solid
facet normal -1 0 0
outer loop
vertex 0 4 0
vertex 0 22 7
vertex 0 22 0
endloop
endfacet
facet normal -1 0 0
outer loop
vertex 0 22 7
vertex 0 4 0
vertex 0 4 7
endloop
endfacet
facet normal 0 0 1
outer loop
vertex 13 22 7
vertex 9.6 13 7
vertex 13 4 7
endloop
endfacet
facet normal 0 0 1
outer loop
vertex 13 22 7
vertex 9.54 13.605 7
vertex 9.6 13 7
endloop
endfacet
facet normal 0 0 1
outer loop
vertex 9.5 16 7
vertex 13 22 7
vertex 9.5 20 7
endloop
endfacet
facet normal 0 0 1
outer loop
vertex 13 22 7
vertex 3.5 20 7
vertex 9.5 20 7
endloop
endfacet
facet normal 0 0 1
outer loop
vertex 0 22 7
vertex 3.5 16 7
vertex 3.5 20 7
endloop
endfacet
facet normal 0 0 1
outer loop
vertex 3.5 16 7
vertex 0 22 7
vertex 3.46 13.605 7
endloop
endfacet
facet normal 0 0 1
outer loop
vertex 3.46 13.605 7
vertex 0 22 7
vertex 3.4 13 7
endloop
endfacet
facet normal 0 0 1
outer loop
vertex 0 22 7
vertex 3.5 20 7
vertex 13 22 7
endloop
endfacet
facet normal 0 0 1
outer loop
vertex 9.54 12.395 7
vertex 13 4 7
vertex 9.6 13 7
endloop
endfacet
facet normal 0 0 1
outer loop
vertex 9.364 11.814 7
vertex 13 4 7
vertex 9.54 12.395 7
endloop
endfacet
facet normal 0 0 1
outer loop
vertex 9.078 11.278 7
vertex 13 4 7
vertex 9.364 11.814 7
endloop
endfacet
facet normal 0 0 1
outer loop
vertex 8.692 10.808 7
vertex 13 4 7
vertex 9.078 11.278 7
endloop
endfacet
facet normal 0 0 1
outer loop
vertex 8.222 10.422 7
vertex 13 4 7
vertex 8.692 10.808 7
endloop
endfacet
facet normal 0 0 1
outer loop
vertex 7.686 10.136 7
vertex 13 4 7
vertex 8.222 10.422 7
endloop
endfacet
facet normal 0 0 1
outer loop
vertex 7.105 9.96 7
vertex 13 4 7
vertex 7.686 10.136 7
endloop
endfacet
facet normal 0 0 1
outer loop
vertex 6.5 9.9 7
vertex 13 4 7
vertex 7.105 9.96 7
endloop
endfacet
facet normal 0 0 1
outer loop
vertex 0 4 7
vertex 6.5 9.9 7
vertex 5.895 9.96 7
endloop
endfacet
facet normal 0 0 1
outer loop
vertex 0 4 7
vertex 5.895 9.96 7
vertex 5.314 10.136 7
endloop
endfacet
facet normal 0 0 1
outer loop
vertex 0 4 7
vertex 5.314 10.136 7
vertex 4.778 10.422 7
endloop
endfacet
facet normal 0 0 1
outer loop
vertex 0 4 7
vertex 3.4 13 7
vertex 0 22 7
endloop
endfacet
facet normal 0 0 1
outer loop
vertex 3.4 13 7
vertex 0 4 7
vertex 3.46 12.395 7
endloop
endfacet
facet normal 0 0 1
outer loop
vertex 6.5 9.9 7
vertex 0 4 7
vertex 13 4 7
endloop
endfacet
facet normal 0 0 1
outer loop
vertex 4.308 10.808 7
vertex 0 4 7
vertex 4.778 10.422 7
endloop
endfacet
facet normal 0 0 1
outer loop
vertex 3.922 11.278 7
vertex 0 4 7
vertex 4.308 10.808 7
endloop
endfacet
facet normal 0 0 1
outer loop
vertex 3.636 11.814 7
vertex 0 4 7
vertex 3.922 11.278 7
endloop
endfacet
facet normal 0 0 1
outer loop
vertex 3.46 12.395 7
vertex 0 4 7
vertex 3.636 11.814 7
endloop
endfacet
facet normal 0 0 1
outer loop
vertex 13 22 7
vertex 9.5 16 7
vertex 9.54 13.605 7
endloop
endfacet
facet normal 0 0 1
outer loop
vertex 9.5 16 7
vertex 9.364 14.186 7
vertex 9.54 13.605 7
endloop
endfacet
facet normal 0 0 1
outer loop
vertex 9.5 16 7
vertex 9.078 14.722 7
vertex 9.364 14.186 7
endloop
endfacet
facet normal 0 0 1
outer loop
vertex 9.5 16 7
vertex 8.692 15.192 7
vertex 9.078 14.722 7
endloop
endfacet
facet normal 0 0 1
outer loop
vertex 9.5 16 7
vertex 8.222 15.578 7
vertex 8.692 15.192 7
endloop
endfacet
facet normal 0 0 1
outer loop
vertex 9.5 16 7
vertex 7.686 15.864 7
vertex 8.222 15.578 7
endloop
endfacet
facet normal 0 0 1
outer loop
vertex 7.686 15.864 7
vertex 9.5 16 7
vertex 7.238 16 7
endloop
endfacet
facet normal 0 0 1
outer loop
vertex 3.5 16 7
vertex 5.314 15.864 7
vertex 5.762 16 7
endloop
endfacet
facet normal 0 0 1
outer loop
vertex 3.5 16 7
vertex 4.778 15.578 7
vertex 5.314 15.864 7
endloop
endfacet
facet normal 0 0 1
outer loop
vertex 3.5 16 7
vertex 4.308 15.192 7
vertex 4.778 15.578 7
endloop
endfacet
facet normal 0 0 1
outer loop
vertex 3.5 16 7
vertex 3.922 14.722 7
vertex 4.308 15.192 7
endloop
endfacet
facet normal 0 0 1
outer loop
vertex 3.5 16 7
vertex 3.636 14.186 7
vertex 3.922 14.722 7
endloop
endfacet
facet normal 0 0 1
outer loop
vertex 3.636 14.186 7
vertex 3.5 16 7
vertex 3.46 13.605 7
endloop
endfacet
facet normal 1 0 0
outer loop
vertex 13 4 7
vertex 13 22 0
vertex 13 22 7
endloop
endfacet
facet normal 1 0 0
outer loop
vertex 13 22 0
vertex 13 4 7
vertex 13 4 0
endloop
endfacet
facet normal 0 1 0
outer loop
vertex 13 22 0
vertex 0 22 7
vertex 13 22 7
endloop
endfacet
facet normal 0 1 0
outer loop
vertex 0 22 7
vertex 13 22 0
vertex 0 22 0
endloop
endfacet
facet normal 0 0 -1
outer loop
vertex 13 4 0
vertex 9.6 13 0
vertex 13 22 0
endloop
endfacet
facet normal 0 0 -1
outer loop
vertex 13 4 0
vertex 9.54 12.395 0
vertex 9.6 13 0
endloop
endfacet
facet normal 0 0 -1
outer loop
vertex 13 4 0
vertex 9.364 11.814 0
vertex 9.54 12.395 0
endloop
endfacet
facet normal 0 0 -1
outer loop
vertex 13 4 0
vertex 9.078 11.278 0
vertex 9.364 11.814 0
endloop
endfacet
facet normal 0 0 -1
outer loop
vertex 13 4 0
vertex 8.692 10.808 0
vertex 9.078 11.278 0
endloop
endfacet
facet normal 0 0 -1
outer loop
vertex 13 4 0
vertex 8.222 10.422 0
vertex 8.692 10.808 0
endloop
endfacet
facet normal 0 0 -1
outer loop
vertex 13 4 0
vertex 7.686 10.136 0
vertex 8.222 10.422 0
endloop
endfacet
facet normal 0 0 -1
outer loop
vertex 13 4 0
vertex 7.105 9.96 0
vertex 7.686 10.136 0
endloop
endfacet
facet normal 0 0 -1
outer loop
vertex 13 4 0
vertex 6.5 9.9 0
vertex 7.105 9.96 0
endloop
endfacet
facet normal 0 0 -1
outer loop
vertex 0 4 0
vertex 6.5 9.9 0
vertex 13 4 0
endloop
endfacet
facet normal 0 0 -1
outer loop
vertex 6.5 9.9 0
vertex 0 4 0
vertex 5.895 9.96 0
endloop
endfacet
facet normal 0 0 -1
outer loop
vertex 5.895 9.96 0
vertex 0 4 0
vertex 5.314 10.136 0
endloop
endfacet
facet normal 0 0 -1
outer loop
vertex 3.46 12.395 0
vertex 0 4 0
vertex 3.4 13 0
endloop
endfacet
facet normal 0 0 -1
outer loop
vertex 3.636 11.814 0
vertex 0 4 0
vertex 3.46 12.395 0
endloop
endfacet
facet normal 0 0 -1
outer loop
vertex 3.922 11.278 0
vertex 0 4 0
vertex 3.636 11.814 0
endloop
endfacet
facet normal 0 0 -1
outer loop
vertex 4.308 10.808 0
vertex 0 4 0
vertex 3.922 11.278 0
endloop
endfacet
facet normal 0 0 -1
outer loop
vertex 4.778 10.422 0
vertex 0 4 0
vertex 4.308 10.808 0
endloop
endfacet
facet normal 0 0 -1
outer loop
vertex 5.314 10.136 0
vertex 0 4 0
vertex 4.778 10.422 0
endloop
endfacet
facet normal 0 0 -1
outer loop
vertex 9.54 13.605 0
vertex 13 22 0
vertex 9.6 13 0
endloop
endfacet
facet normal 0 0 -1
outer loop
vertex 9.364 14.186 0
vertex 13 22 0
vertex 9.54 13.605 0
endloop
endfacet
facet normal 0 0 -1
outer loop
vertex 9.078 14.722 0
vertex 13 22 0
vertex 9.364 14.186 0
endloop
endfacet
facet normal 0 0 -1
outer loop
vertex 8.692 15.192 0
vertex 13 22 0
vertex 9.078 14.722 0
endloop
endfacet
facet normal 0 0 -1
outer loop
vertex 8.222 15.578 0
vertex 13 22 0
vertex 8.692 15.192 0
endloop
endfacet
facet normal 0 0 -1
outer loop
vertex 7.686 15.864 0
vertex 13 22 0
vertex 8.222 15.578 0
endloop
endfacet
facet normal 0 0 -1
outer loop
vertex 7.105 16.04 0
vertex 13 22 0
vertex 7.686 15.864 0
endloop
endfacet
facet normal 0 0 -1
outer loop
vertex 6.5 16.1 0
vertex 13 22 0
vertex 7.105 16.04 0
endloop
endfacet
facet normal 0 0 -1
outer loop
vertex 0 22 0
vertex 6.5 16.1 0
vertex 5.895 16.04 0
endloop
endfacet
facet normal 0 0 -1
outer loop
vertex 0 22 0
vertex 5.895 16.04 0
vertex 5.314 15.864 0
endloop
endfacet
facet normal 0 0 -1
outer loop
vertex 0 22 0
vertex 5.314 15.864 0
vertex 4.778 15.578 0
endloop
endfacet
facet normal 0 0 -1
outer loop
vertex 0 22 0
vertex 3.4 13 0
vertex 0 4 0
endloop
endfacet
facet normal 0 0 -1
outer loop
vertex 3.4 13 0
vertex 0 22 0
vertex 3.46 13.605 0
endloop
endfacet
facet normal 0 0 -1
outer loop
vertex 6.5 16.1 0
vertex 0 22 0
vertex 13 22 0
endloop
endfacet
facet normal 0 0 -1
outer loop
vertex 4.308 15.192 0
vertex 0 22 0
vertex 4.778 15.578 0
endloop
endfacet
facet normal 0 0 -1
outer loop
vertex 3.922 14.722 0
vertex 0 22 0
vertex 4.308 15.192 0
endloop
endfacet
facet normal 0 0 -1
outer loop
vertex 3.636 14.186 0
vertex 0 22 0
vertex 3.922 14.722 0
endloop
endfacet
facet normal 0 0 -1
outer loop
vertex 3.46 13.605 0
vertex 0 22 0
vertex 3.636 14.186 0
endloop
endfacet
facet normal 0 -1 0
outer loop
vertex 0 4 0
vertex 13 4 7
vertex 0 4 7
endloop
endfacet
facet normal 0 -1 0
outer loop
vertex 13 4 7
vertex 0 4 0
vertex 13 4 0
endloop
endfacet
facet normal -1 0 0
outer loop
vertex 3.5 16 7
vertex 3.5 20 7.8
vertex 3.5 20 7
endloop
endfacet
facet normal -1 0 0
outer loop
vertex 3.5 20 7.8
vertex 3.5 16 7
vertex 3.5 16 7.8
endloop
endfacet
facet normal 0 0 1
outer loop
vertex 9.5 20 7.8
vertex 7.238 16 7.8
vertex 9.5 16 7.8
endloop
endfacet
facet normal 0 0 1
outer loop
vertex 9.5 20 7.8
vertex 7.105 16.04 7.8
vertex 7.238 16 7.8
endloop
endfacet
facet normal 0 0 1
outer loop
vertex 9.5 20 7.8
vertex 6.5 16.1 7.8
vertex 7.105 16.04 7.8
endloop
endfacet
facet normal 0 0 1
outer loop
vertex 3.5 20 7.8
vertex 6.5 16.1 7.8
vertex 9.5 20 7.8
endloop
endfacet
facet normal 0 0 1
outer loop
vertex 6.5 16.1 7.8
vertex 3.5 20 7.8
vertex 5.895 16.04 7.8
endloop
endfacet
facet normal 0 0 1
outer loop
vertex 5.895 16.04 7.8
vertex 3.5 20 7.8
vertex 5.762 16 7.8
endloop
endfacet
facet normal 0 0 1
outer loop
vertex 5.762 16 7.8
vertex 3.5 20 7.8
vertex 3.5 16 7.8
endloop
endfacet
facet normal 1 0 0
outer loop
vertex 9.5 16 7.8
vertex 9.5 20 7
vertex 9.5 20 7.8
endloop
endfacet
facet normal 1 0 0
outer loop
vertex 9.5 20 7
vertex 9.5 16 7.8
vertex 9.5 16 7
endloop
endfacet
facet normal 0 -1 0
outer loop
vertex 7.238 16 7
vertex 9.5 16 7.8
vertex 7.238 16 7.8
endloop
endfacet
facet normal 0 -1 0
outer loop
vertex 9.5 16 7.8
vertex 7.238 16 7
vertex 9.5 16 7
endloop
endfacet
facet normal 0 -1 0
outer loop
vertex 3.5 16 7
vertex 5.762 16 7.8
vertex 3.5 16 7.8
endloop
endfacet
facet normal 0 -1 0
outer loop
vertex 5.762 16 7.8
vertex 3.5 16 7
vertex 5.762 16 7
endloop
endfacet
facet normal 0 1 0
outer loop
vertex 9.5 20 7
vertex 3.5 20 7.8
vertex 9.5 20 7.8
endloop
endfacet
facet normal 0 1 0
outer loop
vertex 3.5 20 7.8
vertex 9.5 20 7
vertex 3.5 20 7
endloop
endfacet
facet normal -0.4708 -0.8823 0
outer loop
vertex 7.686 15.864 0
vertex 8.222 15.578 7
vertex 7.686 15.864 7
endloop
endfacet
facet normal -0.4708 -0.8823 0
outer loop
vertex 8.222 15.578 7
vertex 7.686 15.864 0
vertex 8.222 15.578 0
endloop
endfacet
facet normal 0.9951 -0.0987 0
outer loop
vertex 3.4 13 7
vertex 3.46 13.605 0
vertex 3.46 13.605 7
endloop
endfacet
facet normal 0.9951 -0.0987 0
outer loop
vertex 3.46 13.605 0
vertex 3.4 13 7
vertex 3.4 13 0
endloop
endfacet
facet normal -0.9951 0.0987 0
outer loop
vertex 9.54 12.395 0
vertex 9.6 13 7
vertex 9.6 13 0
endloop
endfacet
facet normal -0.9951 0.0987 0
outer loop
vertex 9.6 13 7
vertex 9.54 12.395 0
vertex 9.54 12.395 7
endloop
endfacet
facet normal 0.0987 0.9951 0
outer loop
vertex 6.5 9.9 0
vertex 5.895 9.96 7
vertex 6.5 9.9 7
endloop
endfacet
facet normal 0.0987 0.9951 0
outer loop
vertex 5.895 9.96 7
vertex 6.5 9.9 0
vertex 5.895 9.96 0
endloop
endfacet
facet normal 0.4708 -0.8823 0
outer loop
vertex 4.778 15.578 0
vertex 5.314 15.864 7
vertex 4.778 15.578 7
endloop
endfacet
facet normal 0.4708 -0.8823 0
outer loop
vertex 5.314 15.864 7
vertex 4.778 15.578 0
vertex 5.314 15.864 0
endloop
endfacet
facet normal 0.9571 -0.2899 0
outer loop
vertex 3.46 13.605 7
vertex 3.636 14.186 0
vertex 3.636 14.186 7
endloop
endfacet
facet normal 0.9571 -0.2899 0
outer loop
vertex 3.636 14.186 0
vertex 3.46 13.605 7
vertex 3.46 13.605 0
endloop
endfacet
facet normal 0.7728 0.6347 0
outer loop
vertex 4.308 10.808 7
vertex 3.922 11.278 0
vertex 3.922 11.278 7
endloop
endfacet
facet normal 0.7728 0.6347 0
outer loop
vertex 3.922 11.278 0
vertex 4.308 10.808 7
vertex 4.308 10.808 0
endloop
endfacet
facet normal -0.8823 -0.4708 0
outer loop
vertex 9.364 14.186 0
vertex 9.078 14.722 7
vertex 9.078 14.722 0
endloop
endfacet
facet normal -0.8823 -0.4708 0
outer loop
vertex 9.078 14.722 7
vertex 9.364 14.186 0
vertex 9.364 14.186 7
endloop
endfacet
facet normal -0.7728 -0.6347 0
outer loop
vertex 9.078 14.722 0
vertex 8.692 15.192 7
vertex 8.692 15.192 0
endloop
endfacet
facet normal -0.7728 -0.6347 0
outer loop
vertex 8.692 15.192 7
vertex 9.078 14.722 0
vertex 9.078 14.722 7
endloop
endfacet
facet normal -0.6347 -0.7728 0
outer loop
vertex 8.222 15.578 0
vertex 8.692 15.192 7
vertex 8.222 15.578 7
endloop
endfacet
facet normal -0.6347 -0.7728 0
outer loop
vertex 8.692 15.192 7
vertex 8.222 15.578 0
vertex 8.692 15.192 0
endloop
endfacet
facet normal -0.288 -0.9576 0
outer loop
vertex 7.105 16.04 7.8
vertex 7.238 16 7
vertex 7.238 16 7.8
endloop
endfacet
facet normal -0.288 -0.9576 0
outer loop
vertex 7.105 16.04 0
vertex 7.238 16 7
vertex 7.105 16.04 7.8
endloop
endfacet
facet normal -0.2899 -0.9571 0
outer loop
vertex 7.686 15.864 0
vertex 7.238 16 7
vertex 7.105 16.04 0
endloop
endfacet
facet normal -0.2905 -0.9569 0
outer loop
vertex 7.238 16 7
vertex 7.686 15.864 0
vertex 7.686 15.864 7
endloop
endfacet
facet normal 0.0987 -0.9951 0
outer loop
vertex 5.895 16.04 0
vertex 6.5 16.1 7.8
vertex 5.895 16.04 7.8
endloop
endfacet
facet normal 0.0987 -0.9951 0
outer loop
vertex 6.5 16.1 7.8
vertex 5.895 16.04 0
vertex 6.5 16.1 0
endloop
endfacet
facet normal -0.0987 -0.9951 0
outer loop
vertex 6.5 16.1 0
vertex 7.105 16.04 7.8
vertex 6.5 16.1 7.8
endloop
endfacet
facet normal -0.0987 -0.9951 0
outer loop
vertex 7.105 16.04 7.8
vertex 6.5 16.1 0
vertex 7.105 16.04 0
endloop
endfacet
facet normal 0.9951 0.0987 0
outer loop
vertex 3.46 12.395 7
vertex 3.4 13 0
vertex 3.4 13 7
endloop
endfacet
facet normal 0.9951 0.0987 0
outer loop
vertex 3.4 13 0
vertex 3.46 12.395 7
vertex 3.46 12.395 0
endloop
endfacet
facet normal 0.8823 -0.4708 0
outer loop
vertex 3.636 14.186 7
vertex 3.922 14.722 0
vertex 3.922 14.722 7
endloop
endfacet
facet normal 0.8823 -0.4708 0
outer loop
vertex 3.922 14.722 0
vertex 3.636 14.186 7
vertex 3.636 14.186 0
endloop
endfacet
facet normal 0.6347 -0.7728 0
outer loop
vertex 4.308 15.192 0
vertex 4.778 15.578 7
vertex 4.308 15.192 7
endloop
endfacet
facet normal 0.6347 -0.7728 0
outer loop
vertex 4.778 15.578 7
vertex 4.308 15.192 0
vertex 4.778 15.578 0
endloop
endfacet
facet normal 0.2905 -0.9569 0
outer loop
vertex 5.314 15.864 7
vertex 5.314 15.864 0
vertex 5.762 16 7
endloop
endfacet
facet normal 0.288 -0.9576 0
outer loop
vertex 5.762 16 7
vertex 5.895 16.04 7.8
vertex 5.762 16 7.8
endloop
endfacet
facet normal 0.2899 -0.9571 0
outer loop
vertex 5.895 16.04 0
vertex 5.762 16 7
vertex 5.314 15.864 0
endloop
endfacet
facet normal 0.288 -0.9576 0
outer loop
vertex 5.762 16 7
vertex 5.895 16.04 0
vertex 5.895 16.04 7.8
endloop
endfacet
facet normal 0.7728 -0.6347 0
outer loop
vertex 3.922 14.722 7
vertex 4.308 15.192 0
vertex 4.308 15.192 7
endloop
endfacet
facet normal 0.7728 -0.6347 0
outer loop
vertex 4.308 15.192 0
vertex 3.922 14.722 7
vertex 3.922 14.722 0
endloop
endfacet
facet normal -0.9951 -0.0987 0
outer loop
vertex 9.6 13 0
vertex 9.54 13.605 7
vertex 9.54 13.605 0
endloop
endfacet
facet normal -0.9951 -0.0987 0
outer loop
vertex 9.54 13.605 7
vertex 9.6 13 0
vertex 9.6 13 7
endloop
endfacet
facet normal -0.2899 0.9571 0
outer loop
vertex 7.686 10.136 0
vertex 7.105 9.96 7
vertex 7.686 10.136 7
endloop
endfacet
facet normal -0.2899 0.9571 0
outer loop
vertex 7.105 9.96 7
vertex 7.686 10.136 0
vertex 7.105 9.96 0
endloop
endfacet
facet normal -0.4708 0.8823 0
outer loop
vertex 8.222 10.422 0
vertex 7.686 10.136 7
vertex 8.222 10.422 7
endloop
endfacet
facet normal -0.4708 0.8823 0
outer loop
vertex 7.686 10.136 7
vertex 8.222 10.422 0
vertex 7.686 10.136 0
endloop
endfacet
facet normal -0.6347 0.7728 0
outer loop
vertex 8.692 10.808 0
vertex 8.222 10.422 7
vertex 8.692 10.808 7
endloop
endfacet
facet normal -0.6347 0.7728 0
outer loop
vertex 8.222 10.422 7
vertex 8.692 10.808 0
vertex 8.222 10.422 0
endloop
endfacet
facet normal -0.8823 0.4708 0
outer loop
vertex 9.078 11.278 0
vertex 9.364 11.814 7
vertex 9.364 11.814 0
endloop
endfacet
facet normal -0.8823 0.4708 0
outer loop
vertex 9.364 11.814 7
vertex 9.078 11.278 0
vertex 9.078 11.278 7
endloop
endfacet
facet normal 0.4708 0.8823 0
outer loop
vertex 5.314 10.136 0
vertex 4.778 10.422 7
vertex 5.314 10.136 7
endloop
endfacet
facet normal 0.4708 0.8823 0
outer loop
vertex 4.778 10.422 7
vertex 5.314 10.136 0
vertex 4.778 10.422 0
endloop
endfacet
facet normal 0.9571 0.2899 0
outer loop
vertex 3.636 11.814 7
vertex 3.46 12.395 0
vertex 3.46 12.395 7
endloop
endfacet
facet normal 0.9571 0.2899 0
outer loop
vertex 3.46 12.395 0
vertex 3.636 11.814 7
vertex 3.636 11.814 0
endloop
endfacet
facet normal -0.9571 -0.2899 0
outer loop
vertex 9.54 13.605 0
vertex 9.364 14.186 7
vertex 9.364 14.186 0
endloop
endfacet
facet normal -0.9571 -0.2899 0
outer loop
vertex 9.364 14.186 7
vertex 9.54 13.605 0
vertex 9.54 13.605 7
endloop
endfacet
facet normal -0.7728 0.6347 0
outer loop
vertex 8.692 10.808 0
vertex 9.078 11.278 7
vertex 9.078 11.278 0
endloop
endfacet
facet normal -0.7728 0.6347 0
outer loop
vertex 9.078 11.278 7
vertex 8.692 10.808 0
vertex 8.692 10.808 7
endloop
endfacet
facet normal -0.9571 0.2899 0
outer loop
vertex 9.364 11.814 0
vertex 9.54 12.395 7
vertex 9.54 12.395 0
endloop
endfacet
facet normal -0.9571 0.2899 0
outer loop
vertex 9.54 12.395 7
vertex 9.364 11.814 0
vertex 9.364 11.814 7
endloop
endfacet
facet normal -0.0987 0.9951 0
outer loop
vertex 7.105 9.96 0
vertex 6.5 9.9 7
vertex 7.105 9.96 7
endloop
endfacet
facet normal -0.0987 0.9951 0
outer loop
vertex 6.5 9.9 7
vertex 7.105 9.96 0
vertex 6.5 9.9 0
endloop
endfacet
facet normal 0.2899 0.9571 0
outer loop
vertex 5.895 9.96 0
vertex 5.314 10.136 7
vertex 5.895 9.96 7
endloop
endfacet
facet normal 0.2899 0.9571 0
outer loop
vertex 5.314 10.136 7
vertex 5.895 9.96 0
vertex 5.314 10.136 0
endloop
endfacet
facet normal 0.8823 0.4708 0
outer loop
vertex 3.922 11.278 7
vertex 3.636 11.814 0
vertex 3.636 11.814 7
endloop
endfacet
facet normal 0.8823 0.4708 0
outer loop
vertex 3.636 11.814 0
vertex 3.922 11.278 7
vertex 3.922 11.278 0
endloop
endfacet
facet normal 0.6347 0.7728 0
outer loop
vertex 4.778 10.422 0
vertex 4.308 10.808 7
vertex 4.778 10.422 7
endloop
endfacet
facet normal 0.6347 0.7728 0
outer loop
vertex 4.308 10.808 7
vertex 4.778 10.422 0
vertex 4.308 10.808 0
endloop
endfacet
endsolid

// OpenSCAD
/**
 * Spacer to mount a headlight to an older Gazelle bicycle.
 *
 * I needed this spacer to mount an AXA Headlight to a Gazelle
 * Primeur bicycle, attached to the joining point of the front
 * fork. The mouting flange of the headlight kept colliding with
 * the protruding part of the lower bowl of the headset, so I 
 * needed some spacing and designed this.
 *
 * Copyright of this design 2021, Hendrik Busch
 * https://github.com/hmbusch
 *
 * Licensed under Creative Commons Attribution 4.0 International (CC BY 4.0)
 * https://creativecommons.org/licenses/by/4.0/
 */
$fn = 32;
fudge = 0.01;

difference() {
    union() {
        translate([0, 4, 0])
            cube([13, 18, 7]);
        translate([(13-6)/2, 22-6, 7])
            cube([6, 4, 0.8]);
    }
    translate([13/2, 22-9, -fudge])
        cylinder(d = 6.2, h = 15);
}
